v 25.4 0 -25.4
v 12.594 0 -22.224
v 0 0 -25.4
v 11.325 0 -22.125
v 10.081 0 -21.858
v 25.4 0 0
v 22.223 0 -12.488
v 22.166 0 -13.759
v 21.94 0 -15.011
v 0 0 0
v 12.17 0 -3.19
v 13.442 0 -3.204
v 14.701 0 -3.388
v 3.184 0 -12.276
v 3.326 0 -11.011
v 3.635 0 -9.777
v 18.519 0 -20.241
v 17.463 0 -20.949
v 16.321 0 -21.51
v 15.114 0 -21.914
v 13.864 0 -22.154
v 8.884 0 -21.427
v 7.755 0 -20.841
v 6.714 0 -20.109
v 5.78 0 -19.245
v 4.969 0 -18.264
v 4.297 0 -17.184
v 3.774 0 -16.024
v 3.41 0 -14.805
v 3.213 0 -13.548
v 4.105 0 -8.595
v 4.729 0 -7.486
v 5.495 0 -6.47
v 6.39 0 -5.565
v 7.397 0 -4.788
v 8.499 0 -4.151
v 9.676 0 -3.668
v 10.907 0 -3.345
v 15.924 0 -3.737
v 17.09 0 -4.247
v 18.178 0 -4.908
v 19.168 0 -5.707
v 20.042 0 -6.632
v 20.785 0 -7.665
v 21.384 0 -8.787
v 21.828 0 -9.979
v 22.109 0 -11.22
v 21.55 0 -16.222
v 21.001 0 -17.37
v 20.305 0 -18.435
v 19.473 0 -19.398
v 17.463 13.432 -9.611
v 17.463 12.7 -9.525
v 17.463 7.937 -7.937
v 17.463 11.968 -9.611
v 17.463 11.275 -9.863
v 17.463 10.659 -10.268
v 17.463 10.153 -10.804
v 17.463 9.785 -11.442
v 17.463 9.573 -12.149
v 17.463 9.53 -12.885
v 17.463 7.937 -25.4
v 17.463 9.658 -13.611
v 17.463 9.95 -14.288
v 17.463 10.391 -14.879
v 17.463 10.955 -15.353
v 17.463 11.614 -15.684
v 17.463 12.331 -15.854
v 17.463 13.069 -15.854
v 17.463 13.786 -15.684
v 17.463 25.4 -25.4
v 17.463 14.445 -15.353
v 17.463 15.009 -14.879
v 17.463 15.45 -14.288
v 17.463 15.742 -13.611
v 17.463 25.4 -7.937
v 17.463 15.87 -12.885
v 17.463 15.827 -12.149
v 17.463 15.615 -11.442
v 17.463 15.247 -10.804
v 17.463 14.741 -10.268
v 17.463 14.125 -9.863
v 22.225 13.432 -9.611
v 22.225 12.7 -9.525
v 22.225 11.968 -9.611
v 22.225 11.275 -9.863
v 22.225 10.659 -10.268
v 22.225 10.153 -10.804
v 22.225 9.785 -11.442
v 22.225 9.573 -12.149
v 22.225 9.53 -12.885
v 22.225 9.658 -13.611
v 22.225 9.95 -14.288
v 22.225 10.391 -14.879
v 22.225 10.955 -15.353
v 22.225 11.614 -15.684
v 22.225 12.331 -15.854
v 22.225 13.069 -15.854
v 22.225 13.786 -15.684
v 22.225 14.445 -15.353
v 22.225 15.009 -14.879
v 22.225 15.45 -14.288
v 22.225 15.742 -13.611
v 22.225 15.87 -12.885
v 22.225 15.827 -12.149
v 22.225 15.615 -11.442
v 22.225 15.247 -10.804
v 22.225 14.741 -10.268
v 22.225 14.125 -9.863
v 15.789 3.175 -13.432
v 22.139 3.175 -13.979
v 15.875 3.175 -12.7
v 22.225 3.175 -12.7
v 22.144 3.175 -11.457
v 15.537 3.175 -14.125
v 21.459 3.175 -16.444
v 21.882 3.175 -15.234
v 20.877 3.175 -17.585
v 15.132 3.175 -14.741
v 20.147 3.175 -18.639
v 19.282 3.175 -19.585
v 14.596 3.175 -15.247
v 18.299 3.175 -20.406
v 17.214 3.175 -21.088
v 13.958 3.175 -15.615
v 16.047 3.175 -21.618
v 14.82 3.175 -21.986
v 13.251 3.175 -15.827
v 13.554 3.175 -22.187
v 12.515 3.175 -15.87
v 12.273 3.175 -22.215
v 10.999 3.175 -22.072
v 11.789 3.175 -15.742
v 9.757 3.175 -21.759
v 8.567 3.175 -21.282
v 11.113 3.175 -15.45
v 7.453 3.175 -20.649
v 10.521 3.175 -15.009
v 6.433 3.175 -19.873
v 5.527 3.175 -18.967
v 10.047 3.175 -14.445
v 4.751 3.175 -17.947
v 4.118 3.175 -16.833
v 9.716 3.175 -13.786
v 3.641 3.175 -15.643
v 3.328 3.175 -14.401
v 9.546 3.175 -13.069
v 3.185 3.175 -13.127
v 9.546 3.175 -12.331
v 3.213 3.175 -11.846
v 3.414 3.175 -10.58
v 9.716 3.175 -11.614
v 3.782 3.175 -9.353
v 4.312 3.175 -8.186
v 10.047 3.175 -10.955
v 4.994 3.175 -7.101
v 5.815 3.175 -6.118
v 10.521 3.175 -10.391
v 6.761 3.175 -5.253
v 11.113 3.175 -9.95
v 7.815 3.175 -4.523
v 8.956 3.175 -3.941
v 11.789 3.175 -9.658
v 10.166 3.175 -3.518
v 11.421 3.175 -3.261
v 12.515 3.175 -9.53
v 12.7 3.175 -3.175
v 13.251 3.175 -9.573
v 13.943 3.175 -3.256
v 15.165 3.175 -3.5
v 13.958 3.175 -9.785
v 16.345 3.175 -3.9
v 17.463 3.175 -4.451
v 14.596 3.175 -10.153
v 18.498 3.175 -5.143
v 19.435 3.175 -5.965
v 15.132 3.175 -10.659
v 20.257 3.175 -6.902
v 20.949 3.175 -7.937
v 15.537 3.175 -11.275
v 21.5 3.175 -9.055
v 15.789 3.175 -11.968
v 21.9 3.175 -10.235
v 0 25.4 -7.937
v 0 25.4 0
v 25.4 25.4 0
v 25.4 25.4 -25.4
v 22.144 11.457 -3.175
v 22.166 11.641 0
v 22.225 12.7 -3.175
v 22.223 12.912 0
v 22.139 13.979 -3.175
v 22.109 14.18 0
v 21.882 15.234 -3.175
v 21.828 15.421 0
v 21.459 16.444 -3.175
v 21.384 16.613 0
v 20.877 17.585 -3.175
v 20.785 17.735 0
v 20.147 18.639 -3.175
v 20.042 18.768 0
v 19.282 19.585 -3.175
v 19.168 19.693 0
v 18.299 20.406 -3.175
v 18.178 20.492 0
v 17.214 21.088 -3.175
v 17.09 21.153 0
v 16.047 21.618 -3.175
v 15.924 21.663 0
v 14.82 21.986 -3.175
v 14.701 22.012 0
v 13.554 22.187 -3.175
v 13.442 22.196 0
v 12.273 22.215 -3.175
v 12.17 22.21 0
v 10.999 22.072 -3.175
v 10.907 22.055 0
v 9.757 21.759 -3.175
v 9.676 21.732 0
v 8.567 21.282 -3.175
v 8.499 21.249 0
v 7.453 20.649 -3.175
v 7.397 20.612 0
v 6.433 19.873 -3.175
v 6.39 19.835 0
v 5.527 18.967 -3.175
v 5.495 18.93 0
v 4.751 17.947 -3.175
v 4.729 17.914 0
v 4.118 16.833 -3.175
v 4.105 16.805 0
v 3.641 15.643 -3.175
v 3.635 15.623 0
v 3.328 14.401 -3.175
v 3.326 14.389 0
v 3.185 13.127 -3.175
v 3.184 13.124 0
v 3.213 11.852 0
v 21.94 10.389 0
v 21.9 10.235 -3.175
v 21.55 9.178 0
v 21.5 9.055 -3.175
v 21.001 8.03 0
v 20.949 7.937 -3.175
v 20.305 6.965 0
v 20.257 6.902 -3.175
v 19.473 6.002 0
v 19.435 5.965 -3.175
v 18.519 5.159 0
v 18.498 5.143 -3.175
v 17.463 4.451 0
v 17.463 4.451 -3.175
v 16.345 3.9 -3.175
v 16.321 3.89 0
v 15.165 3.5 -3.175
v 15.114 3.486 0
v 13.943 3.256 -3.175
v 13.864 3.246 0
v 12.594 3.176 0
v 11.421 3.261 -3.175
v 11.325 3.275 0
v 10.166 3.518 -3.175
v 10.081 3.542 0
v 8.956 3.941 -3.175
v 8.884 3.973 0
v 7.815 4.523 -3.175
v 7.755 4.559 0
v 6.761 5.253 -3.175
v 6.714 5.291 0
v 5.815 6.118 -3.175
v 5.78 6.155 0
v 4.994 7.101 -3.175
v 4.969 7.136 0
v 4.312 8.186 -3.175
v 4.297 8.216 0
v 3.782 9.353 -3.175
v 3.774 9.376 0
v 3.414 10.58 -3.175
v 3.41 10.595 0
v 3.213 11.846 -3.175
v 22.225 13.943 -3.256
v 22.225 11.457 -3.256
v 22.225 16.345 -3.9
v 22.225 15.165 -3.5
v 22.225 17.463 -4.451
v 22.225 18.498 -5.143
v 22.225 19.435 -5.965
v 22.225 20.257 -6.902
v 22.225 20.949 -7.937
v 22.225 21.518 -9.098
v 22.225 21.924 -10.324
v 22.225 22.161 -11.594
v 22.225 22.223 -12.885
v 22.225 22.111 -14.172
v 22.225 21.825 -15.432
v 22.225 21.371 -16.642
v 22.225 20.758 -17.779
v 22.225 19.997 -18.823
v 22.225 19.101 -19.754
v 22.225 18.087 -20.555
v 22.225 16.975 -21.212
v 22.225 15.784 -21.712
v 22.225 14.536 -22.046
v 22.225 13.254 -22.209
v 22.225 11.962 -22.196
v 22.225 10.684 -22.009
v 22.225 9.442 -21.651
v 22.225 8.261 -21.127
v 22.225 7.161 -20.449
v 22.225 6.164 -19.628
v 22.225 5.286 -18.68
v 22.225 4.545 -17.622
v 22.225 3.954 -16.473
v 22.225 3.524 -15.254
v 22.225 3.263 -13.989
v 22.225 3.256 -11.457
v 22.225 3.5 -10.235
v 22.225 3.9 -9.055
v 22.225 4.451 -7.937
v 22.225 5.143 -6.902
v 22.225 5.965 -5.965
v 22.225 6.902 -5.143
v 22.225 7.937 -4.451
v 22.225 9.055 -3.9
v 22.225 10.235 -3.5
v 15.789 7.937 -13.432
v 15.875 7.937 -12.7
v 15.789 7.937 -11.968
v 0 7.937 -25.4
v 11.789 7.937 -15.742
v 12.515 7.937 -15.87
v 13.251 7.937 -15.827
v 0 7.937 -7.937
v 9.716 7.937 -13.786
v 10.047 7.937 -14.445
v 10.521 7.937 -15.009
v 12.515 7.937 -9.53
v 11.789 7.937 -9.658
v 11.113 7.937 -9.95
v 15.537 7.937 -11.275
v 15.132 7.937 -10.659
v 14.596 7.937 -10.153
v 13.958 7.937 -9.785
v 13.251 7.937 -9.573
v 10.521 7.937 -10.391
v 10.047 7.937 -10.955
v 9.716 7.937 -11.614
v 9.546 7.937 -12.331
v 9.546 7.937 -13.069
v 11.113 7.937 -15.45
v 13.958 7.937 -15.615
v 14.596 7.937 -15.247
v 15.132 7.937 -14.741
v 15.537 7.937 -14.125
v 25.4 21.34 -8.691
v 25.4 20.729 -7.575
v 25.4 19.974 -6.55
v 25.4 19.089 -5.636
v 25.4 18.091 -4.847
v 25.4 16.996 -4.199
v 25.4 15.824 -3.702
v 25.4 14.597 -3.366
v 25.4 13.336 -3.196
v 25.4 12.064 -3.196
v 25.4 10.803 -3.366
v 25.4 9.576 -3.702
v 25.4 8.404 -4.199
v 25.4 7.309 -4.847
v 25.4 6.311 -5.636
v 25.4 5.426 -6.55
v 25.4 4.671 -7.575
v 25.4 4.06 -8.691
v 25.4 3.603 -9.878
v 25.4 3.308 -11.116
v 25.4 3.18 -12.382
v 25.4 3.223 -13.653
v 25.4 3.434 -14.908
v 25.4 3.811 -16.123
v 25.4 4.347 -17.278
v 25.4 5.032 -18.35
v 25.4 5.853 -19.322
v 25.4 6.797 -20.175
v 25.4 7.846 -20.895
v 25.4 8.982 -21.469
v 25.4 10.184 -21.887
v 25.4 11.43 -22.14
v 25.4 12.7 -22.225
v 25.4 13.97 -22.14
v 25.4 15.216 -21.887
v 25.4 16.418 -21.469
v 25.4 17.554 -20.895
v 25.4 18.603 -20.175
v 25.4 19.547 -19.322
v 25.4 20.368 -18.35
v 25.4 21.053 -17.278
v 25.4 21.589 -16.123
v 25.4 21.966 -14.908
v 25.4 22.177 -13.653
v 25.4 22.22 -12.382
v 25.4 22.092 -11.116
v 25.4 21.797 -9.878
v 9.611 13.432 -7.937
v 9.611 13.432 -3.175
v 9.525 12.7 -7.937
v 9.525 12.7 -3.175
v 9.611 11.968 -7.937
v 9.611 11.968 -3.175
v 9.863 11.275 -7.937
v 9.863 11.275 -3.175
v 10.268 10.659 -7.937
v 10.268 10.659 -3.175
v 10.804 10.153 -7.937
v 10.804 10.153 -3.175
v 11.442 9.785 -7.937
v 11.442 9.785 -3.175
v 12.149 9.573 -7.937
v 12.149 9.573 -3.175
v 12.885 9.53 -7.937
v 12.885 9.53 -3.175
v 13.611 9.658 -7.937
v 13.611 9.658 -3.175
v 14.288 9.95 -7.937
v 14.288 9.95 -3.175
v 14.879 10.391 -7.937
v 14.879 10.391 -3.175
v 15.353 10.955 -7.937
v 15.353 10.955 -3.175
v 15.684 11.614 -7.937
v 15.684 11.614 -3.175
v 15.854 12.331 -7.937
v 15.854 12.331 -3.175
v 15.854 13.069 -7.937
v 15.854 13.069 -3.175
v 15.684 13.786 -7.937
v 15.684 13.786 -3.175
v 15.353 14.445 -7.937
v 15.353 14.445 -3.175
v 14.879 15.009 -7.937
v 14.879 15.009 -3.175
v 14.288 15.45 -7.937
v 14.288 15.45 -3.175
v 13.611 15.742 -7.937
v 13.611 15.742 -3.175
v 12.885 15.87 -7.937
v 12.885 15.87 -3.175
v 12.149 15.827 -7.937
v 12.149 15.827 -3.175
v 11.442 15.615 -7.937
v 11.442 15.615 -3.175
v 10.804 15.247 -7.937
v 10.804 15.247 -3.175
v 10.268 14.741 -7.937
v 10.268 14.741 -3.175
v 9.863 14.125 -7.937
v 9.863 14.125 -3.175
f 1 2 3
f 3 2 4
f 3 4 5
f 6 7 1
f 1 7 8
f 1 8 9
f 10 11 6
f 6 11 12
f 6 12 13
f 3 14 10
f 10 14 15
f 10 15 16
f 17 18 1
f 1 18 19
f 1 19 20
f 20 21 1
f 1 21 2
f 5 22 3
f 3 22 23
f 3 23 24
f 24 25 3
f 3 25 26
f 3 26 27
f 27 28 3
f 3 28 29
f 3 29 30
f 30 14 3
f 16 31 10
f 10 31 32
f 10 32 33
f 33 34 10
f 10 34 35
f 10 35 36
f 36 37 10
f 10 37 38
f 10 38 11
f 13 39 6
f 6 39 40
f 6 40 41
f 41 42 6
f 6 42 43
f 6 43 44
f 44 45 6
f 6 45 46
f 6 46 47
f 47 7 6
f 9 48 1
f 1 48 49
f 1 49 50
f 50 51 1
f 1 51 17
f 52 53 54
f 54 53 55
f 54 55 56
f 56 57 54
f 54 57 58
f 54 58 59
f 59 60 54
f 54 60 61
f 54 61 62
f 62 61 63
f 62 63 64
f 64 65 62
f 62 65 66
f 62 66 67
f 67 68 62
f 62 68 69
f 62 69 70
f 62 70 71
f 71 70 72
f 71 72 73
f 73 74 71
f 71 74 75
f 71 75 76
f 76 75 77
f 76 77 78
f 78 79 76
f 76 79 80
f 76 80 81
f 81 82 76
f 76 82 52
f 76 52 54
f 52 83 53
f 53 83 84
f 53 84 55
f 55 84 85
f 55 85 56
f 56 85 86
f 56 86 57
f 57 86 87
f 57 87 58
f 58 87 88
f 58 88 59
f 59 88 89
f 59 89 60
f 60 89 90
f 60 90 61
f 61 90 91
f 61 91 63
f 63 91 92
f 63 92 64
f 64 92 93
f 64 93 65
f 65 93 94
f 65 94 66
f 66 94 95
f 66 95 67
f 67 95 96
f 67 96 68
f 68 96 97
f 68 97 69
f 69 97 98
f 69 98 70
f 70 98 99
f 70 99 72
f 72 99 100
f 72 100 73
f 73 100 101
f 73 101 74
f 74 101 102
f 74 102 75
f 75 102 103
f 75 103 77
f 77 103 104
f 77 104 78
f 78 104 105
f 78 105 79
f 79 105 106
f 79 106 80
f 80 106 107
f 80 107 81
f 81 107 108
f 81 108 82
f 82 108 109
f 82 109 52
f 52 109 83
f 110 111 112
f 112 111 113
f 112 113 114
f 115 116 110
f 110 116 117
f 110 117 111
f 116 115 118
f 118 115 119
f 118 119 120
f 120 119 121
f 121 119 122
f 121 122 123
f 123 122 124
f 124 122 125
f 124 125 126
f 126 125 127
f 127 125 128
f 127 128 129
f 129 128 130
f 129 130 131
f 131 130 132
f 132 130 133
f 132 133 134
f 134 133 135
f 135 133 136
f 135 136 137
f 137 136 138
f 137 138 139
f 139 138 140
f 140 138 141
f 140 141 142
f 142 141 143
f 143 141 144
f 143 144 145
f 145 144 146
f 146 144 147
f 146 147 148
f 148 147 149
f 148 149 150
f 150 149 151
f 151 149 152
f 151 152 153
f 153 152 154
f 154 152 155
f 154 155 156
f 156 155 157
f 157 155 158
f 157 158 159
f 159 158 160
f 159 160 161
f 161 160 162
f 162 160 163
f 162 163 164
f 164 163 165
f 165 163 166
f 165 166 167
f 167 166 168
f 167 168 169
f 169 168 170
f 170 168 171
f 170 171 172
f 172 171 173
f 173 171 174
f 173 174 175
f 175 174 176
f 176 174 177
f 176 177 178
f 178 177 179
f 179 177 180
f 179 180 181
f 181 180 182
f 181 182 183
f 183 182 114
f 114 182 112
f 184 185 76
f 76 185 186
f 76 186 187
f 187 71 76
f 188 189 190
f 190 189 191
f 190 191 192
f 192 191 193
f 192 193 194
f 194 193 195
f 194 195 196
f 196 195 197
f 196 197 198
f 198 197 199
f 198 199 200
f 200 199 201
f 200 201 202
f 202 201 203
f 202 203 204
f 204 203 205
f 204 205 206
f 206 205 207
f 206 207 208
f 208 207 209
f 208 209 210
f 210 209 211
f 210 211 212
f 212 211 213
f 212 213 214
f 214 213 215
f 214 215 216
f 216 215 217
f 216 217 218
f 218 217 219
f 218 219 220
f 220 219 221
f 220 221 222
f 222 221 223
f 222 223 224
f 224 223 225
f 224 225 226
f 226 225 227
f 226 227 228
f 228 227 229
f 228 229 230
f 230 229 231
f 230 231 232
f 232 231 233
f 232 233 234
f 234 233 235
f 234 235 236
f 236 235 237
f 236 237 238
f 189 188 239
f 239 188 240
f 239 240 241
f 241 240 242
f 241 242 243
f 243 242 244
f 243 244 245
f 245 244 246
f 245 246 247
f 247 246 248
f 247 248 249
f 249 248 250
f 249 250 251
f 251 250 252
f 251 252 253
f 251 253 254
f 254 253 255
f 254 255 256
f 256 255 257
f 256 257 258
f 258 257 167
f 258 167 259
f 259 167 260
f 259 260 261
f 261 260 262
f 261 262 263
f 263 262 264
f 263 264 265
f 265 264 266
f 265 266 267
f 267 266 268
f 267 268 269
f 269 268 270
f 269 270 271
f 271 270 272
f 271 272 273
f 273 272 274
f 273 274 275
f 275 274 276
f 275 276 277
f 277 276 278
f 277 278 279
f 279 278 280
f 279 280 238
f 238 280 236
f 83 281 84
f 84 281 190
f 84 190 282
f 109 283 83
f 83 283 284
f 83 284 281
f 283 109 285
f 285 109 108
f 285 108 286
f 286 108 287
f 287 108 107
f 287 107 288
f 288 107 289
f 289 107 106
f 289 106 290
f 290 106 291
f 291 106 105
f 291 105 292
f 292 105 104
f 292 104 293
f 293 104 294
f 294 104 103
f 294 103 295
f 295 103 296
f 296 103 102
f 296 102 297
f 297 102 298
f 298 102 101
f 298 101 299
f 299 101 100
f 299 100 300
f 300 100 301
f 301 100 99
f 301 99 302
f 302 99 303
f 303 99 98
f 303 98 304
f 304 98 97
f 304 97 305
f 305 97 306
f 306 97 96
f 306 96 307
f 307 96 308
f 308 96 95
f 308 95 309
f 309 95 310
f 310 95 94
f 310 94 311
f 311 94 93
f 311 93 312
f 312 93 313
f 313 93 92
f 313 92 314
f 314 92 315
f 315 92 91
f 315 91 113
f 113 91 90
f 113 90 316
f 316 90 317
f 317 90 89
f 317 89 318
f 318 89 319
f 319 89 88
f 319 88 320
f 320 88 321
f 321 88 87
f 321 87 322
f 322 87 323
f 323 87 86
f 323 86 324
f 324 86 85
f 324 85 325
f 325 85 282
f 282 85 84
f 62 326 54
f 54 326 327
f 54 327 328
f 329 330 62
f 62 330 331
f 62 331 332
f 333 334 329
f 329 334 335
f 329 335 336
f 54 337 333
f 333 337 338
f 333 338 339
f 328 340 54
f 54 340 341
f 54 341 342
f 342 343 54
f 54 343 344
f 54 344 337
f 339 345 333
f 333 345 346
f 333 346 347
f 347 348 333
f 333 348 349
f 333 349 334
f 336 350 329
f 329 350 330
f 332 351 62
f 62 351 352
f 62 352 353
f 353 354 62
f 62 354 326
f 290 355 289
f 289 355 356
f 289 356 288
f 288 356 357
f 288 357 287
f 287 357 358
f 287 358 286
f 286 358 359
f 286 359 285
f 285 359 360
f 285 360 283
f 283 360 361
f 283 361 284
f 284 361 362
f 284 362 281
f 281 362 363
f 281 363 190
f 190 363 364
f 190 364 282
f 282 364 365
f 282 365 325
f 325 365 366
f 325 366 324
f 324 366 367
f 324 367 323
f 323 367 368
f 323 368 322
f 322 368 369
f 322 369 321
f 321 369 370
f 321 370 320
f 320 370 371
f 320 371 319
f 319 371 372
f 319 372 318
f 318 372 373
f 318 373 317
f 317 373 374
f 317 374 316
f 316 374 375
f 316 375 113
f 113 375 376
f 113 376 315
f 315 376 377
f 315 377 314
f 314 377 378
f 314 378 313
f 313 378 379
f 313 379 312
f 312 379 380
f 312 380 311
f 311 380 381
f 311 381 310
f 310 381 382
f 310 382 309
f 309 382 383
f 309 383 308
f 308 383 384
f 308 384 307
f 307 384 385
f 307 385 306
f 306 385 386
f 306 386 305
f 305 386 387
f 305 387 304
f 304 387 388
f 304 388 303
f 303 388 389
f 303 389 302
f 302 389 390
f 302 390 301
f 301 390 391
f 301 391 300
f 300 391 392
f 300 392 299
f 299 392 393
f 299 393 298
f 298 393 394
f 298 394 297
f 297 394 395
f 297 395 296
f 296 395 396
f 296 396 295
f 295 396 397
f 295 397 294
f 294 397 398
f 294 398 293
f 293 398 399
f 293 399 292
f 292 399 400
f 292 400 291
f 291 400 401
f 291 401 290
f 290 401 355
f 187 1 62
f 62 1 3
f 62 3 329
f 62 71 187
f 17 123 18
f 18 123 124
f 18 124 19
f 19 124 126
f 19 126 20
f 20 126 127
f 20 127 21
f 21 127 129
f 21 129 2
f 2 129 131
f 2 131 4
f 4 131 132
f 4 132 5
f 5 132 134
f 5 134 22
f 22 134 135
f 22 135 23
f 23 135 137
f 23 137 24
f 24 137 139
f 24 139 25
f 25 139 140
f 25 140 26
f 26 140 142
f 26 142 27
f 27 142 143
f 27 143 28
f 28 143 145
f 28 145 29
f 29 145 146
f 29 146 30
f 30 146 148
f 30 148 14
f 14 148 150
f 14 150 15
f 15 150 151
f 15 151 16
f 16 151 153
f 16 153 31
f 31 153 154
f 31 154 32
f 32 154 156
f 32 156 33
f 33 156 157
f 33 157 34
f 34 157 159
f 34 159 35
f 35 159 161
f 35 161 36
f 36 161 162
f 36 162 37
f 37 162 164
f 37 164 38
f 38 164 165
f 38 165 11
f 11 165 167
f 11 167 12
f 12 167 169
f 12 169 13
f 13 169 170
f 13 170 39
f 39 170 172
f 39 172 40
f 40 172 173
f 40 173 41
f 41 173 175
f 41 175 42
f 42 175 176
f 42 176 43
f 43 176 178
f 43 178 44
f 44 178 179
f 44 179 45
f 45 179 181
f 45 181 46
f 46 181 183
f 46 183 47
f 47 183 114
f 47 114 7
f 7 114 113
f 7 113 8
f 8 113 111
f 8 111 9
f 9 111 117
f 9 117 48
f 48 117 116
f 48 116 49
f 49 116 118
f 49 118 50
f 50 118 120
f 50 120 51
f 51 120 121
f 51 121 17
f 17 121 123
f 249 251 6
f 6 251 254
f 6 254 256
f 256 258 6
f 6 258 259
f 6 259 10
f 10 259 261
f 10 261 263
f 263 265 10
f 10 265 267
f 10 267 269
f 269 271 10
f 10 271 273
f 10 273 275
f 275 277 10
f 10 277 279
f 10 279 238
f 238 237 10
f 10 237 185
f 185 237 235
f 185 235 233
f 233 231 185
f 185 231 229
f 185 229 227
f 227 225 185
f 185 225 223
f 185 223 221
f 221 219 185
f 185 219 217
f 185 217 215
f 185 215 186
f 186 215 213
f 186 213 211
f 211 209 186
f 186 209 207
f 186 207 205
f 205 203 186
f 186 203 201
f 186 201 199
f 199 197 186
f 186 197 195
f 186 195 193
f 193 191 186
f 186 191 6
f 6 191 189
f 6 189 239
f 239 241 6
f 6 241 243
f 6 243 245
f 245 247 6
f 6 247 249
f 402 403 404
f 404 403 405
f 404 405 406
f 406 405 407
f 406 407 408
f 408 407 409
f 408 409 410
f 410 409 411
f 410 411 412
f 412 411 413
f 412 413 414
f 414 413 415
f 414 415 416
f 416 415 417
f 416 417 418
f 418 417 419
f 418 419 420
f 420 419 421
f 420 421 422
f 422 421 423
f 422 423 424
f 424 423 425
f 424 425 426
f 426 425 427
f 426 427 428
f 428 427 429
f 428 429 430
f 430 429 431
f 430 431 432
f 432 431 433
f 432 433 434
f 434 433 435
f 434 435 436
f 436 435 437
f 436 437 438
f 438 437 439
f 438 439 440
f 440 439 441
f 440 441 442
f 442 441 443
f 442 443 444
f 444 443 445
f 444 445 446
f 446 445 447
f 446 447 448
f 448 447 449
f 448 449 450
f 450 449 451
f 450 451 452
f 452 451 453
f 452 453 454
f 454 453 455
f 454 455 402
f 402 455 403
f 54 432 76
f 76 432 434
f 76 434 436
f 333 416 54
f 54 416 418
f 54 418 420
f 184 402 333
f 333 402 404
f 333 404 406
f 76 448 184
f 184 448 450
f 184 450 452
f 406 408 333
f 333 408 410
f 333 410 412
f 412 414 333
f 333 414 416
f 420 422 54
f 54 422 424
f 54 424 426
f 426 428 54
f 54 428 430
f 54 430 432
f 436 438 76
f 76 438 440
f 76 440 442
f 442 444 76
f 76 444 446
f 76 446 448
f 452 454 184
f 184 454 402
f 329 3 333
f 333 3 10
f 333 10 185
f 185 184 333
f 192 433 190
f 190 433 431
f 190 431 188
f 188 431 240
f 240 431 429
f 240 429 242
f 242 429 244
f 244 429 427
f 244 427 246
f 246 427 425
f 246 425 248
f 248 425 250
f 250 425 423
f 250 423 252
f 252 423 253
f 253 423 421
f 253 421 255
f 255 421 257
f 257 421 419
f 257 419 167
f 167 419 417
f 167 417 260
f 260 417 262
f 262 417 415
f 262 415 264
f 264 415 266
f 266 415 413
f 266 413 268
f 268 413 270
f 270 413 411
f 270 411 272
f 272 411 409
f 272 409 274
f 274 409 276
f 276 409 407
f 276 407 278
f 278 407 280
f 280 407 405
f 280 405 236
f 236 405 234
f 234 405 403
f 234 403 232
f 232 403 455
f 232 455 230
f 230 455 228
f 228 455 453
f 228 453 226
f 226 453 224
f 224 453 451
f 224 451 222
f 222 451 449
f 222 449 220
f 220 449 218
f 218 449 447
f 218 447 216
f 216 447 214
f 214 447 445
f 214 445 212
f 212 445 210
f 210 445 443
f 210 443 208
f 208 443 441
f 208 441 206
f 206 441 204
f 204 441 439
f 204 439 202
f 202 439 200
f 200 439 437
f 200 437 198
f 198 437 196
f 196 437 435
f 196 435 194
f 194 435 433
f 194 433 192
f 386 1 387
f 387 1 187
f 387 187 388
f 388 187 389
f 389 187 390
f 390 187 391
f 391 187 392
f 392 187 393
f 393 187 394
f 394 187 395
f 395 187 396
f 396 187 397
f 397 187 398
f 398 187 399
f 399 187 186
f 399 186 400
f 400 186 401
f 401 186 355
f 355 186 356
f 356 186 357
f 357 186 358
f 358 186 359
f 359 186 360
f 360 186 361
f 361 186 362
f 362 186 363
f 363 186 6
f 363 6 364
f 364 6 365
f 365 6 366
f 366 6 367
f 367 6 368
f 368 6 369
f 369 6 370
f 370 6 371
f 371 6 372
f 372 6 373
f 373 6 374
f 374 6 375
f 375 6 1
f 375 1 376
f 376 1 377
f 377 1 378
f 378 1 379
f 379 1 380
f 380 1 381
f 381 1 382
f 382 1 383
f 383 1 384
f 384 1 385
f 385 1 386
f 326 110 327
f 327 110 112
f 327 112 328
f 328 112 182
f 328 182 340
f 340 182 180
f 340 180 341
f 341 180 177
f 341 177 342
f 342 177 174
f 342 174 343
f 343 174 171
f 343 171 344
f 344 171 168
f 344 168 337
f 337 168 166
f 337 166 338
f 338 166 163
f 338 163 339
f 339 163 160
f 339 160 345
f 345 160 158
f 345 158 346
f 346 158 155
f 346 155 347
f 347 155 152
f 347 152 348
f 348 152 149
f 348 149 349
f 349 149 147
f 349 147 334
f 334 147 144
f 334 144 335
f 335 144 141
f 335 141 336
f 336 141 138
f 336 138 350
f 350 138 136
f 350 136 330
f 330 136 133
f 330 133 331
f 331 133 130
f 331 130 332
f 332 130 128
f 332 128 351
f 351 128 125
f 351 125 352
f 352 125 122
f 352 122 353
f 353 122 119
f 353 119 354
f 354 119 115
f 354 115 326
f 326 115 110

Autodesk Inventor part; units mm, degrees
ref_plane "YZ Plane" through (0, 0, 0) normal (1, 0, 0) x (0, 1, 0)
ref_plane "XZ Plane" through (0, 0, 0) normal (0, 1, 0) x (-1, 0, 0)
ref_plane "XY Plane" through (0, 0, 0) normal (0, 0, 1) x (1, 0, 0)
sketch "Sketch1" plane through (0, 0, 0) normal (0, 1, 0) x (-1, 0, 0)
  line L0 (0, 0) -> (-25.4, 0)
  line L1 (-25.4, 0) -> (-25.4, -25.4)
  line L2 (-25.4, -25.4) -> (0, -25.4)
  line L3 (0, -25.4) -> (0, 0)
  line L4 (0, 0) -> (-25.4, -25.4) construction
  line L5 (-25.4, 0) -> (0, -25.4) construction
  circle A0 centre (-12.7, -12.7) radius 9.525
  dimension "d0" = 25.4
  dimension "d1" = 25.4
  dimension "d3" = 19.05
extrude "Extrusion1" add sketch "Sketch1" along normal blind 3.175
sketch "Sketch2" plane through (0, 3.175, 0) normal (0, 1, 0) x (1, 0, 0)
  line L0 (25.4, 25.4) -> (0, 25.4) projected
  line L1 (0, 0) -> (25.4, 0)
  line L2 (25.4, 0) -> (25.4, 25.4)
  line L3 (25.4, 25.4) -> (0, 25.4)
  line L4 (0, 25.4) -> (0, 0)
  line L5 (0, 25.4) -> (0, 0) construction
  line L6 (0, 0) -> (25.4, 25.4) construction
  line L7 (0, 25.4) -> (25.4, 0) construction
  circle A0 centre (12.7, 12.7) radius 3.175
  dimension "d39" = 6.35
extrude "Extrusion2" add sketch "Sketch2" along normal blind 4.7625
sketch "Sketch4" plane through (0, 0, 0) normal (0, 0, 1) x (1, 0, 0)
  line L0 (0, 0) -> (0, 7.9375) projected
  line L1 (0, 0) -> (25.4, 0)
  line L2 (25.4, 0) -> (25.4, 25.4)
  line L3 (25.4, 25.4) -> (0, 25.4)
  line L4 (0, 25.4) -> (0, 0)
  line L5 (0, 25.4) -> (25.4, 0) construction
  line L6 (25.4, 25.4) -> (0, 0) construction
  circle A0 centre (12.7, 12.7) radius 9.525
  dimension "d13" = 25.4
  dimension "d14" = 25.4
  dimension "d15" = 19.05
extrude "Extrusion4" add sketch "Sketch4" against normal blind 3.175
sketch "Sketch5" plane through (0, 0, 0) normal (0, 0, 1) x (1, 0, 0)
  line L0 (0, 0) -> (0, 25.4) construction
  line L1 (0, 0) -> (25.4, 0) construction
  line L2 (0, 25.4) -> (25.4, 0) construction
  line L3 (0, 25.4) -> (25.4, 25.4) construction
  line L4 (25.4, 0) -> (25.4, 25.4) construction
  line L5 (0, 0) -> (0, 7.9375) construction
  line L6 (25.4, 25.4) -> (0, 0) construction
  circle A0 centre (12.7, 12.7) radius 9.525
  dimension "d18" = 19.05
extrude "Extrusion5" cut sketch "Sketch5" against normal blind 3.175
sketch "Sketch6" plane through (0, 0, -3.175) normal (0, 0, -1) x (-1, 0, 0)
  line L0 (-25.4, 0) -> (-25.4, 25.4) projected
  line L1 (-25.4, 25.4) -> (0, 25.4)
  line L2 (0, 25.4) -> (0, 0)
  line L3 (0, 0) -> (-25.4, 0)
  line L4 (-25.4, 0) -> (-25.4, 25.4)
  line L5 (0, 0) -> (0, 25.4) construction
  line L6 (-25.4, 25.4) -> (0, 0) construction
  line L7 (0, 0) -> (0, 25.4) construction
  line L8 (0, 25.4) -> (-25.4, 0) construction
  circle A0 centre (-12.7, 12.7) radius 3.175
  dimension "d40" = 6.35
extrude "Extrusion6" add sketch "Sketch6" along normal blind 4.7625
sketch "Sketch7" plane through (25.4, 0, 0) normal (1, 0, 0) x (0, 0, -1)
  line L0 (0, 25.4) -> (7.9375, 25.4) projected
  line L1 (25.4, 0) -> (25.4, 7.9375) projected
  line L2 (0, 25.4) -> (25.4, 25.4)
  line L3 (25.4, 25.4) -> (25.4, 0)
  line L4 (25.4, 0) -> (0, 0)
  line L5 (0, 0) -> (0, 25.4)
  line L6 (0, 25.4) -> (25.4, 0) construction
  line L7 (25.4, 25.4) -> (0, 0) construction
  circle A0 centre (12.7, 12.7) radius 9.525
  dimension "d24" = 19.05
extrude "Extrusion7" add sketch "Sketch7" against normal blind 3.175
sketch "Sketch8" plane through (25.4, 0, 0) normal (1, 0, 0) x (0, 0, -1)
  line L0 (0, 0) -> (0, 25.4) construction
  line L1 (0, 0) -> (25.4, 0) construction
  line L2 (0, 25.4) -> (25.4, 0) construction
  line L3 (25.4, 0) -> (25.4, 25.4) construction
  line L4 (25.4, 25.4) -> (0, 0) construction
  circle A0 centre (12.7, 12.7) radius 9.525
  dimension "d27" = 19.05
extrude "Extrusion8" cut sketch "Sketch8" against normal blind 3.175
sketch "Sketch9" plane through (22.225, 0, 0) normal (-1, 0, 0) x (0, 0, 1)
  line L0 (-25.4, 25.4) -> (-25.4, 7.9375) projected
  line L1 (-25.4, 25.4) -> (0, 25.4)
  line L2 (0, 25.4) -> (0, 0)
  line L3 (0, 0) -> (-25.4, 0)
  line L4 (-25.4, 0) -> (-25.4, 25.4)
  line L5 (-25.4, 0) -> (0, 0) construction
  line L6 (-25.4, 25.4) -> (0, 0) construction
  line L7 (0, 0) -> (0, 25.4) construction
  line L8 (0, 25.4) -> (-25.4, 0) construction
  circle A0 centre (-12.7, 12.7) radius 3.175
  dimension "d41" = 6.35
extrude "Extrusion9" add sketch "Sketch9" along normal blind 4.7625
sketch "Sketch10" plane through (0, 0, 0) normal (0, -1, 0) x (1, 0, 0)
  line L0 (0, -25.4) -> (0, -7.9375) projected
  line L1 (25.4, 0) -> (0, 0) projected
  line L2 (0, -25.4) -> (25.4, -25.4)
  line L3 (25.4, -25.4) -> (25.4, 0)
  line L4 (25.4, 0) -> (0, 0)
  line L5 (0, 0) -> (0, -25.4)
  line L6 (17.4625, -25.4) -> (0, -25.4) construction
  line L7 (25.4, 0) -> (25.4, -25.4) construction
  line L8 (0, -25.4) -> (25.4, 0) construction
  line L9 (25.4, 0) -> (0, 0) construction
  line L10 (0, -25.4) -> (0, 0) construction
  line L11 (0, 0) -> (25.4, -25.4) construction
  circle A0 centre (12.7, -12.7) radius 9.525
  dimension "d33" = 19.05
extrude "Extrusion10" cut sketch "Sketch10" against normal blind 3.175 contours A0
sketch "Sketch11" plane through (0, 0, 0) normal (0, 0, 1) x (1, 0, 0)
  line L0 (0, 7.9375) -> (0, 25.4) construction
  line L1 (25.4, 0) -> (25.4, 25.4) construction
  line L2 (0, 25.4) -> (25.4, 0) construction
  line L3 (25.4, 0) -> (25.4, 25.4) construction
  line L4 (25.4, 25.4) -> (0, 0) construction
  circle A0 centre (12.7, 12.7) radius 9.525
  dimension "d36" = 19.05
extrude "Extrusion11" cut sketch "Sketch11" against normal blind 3.175
properties part number "MountingBracket_2"
